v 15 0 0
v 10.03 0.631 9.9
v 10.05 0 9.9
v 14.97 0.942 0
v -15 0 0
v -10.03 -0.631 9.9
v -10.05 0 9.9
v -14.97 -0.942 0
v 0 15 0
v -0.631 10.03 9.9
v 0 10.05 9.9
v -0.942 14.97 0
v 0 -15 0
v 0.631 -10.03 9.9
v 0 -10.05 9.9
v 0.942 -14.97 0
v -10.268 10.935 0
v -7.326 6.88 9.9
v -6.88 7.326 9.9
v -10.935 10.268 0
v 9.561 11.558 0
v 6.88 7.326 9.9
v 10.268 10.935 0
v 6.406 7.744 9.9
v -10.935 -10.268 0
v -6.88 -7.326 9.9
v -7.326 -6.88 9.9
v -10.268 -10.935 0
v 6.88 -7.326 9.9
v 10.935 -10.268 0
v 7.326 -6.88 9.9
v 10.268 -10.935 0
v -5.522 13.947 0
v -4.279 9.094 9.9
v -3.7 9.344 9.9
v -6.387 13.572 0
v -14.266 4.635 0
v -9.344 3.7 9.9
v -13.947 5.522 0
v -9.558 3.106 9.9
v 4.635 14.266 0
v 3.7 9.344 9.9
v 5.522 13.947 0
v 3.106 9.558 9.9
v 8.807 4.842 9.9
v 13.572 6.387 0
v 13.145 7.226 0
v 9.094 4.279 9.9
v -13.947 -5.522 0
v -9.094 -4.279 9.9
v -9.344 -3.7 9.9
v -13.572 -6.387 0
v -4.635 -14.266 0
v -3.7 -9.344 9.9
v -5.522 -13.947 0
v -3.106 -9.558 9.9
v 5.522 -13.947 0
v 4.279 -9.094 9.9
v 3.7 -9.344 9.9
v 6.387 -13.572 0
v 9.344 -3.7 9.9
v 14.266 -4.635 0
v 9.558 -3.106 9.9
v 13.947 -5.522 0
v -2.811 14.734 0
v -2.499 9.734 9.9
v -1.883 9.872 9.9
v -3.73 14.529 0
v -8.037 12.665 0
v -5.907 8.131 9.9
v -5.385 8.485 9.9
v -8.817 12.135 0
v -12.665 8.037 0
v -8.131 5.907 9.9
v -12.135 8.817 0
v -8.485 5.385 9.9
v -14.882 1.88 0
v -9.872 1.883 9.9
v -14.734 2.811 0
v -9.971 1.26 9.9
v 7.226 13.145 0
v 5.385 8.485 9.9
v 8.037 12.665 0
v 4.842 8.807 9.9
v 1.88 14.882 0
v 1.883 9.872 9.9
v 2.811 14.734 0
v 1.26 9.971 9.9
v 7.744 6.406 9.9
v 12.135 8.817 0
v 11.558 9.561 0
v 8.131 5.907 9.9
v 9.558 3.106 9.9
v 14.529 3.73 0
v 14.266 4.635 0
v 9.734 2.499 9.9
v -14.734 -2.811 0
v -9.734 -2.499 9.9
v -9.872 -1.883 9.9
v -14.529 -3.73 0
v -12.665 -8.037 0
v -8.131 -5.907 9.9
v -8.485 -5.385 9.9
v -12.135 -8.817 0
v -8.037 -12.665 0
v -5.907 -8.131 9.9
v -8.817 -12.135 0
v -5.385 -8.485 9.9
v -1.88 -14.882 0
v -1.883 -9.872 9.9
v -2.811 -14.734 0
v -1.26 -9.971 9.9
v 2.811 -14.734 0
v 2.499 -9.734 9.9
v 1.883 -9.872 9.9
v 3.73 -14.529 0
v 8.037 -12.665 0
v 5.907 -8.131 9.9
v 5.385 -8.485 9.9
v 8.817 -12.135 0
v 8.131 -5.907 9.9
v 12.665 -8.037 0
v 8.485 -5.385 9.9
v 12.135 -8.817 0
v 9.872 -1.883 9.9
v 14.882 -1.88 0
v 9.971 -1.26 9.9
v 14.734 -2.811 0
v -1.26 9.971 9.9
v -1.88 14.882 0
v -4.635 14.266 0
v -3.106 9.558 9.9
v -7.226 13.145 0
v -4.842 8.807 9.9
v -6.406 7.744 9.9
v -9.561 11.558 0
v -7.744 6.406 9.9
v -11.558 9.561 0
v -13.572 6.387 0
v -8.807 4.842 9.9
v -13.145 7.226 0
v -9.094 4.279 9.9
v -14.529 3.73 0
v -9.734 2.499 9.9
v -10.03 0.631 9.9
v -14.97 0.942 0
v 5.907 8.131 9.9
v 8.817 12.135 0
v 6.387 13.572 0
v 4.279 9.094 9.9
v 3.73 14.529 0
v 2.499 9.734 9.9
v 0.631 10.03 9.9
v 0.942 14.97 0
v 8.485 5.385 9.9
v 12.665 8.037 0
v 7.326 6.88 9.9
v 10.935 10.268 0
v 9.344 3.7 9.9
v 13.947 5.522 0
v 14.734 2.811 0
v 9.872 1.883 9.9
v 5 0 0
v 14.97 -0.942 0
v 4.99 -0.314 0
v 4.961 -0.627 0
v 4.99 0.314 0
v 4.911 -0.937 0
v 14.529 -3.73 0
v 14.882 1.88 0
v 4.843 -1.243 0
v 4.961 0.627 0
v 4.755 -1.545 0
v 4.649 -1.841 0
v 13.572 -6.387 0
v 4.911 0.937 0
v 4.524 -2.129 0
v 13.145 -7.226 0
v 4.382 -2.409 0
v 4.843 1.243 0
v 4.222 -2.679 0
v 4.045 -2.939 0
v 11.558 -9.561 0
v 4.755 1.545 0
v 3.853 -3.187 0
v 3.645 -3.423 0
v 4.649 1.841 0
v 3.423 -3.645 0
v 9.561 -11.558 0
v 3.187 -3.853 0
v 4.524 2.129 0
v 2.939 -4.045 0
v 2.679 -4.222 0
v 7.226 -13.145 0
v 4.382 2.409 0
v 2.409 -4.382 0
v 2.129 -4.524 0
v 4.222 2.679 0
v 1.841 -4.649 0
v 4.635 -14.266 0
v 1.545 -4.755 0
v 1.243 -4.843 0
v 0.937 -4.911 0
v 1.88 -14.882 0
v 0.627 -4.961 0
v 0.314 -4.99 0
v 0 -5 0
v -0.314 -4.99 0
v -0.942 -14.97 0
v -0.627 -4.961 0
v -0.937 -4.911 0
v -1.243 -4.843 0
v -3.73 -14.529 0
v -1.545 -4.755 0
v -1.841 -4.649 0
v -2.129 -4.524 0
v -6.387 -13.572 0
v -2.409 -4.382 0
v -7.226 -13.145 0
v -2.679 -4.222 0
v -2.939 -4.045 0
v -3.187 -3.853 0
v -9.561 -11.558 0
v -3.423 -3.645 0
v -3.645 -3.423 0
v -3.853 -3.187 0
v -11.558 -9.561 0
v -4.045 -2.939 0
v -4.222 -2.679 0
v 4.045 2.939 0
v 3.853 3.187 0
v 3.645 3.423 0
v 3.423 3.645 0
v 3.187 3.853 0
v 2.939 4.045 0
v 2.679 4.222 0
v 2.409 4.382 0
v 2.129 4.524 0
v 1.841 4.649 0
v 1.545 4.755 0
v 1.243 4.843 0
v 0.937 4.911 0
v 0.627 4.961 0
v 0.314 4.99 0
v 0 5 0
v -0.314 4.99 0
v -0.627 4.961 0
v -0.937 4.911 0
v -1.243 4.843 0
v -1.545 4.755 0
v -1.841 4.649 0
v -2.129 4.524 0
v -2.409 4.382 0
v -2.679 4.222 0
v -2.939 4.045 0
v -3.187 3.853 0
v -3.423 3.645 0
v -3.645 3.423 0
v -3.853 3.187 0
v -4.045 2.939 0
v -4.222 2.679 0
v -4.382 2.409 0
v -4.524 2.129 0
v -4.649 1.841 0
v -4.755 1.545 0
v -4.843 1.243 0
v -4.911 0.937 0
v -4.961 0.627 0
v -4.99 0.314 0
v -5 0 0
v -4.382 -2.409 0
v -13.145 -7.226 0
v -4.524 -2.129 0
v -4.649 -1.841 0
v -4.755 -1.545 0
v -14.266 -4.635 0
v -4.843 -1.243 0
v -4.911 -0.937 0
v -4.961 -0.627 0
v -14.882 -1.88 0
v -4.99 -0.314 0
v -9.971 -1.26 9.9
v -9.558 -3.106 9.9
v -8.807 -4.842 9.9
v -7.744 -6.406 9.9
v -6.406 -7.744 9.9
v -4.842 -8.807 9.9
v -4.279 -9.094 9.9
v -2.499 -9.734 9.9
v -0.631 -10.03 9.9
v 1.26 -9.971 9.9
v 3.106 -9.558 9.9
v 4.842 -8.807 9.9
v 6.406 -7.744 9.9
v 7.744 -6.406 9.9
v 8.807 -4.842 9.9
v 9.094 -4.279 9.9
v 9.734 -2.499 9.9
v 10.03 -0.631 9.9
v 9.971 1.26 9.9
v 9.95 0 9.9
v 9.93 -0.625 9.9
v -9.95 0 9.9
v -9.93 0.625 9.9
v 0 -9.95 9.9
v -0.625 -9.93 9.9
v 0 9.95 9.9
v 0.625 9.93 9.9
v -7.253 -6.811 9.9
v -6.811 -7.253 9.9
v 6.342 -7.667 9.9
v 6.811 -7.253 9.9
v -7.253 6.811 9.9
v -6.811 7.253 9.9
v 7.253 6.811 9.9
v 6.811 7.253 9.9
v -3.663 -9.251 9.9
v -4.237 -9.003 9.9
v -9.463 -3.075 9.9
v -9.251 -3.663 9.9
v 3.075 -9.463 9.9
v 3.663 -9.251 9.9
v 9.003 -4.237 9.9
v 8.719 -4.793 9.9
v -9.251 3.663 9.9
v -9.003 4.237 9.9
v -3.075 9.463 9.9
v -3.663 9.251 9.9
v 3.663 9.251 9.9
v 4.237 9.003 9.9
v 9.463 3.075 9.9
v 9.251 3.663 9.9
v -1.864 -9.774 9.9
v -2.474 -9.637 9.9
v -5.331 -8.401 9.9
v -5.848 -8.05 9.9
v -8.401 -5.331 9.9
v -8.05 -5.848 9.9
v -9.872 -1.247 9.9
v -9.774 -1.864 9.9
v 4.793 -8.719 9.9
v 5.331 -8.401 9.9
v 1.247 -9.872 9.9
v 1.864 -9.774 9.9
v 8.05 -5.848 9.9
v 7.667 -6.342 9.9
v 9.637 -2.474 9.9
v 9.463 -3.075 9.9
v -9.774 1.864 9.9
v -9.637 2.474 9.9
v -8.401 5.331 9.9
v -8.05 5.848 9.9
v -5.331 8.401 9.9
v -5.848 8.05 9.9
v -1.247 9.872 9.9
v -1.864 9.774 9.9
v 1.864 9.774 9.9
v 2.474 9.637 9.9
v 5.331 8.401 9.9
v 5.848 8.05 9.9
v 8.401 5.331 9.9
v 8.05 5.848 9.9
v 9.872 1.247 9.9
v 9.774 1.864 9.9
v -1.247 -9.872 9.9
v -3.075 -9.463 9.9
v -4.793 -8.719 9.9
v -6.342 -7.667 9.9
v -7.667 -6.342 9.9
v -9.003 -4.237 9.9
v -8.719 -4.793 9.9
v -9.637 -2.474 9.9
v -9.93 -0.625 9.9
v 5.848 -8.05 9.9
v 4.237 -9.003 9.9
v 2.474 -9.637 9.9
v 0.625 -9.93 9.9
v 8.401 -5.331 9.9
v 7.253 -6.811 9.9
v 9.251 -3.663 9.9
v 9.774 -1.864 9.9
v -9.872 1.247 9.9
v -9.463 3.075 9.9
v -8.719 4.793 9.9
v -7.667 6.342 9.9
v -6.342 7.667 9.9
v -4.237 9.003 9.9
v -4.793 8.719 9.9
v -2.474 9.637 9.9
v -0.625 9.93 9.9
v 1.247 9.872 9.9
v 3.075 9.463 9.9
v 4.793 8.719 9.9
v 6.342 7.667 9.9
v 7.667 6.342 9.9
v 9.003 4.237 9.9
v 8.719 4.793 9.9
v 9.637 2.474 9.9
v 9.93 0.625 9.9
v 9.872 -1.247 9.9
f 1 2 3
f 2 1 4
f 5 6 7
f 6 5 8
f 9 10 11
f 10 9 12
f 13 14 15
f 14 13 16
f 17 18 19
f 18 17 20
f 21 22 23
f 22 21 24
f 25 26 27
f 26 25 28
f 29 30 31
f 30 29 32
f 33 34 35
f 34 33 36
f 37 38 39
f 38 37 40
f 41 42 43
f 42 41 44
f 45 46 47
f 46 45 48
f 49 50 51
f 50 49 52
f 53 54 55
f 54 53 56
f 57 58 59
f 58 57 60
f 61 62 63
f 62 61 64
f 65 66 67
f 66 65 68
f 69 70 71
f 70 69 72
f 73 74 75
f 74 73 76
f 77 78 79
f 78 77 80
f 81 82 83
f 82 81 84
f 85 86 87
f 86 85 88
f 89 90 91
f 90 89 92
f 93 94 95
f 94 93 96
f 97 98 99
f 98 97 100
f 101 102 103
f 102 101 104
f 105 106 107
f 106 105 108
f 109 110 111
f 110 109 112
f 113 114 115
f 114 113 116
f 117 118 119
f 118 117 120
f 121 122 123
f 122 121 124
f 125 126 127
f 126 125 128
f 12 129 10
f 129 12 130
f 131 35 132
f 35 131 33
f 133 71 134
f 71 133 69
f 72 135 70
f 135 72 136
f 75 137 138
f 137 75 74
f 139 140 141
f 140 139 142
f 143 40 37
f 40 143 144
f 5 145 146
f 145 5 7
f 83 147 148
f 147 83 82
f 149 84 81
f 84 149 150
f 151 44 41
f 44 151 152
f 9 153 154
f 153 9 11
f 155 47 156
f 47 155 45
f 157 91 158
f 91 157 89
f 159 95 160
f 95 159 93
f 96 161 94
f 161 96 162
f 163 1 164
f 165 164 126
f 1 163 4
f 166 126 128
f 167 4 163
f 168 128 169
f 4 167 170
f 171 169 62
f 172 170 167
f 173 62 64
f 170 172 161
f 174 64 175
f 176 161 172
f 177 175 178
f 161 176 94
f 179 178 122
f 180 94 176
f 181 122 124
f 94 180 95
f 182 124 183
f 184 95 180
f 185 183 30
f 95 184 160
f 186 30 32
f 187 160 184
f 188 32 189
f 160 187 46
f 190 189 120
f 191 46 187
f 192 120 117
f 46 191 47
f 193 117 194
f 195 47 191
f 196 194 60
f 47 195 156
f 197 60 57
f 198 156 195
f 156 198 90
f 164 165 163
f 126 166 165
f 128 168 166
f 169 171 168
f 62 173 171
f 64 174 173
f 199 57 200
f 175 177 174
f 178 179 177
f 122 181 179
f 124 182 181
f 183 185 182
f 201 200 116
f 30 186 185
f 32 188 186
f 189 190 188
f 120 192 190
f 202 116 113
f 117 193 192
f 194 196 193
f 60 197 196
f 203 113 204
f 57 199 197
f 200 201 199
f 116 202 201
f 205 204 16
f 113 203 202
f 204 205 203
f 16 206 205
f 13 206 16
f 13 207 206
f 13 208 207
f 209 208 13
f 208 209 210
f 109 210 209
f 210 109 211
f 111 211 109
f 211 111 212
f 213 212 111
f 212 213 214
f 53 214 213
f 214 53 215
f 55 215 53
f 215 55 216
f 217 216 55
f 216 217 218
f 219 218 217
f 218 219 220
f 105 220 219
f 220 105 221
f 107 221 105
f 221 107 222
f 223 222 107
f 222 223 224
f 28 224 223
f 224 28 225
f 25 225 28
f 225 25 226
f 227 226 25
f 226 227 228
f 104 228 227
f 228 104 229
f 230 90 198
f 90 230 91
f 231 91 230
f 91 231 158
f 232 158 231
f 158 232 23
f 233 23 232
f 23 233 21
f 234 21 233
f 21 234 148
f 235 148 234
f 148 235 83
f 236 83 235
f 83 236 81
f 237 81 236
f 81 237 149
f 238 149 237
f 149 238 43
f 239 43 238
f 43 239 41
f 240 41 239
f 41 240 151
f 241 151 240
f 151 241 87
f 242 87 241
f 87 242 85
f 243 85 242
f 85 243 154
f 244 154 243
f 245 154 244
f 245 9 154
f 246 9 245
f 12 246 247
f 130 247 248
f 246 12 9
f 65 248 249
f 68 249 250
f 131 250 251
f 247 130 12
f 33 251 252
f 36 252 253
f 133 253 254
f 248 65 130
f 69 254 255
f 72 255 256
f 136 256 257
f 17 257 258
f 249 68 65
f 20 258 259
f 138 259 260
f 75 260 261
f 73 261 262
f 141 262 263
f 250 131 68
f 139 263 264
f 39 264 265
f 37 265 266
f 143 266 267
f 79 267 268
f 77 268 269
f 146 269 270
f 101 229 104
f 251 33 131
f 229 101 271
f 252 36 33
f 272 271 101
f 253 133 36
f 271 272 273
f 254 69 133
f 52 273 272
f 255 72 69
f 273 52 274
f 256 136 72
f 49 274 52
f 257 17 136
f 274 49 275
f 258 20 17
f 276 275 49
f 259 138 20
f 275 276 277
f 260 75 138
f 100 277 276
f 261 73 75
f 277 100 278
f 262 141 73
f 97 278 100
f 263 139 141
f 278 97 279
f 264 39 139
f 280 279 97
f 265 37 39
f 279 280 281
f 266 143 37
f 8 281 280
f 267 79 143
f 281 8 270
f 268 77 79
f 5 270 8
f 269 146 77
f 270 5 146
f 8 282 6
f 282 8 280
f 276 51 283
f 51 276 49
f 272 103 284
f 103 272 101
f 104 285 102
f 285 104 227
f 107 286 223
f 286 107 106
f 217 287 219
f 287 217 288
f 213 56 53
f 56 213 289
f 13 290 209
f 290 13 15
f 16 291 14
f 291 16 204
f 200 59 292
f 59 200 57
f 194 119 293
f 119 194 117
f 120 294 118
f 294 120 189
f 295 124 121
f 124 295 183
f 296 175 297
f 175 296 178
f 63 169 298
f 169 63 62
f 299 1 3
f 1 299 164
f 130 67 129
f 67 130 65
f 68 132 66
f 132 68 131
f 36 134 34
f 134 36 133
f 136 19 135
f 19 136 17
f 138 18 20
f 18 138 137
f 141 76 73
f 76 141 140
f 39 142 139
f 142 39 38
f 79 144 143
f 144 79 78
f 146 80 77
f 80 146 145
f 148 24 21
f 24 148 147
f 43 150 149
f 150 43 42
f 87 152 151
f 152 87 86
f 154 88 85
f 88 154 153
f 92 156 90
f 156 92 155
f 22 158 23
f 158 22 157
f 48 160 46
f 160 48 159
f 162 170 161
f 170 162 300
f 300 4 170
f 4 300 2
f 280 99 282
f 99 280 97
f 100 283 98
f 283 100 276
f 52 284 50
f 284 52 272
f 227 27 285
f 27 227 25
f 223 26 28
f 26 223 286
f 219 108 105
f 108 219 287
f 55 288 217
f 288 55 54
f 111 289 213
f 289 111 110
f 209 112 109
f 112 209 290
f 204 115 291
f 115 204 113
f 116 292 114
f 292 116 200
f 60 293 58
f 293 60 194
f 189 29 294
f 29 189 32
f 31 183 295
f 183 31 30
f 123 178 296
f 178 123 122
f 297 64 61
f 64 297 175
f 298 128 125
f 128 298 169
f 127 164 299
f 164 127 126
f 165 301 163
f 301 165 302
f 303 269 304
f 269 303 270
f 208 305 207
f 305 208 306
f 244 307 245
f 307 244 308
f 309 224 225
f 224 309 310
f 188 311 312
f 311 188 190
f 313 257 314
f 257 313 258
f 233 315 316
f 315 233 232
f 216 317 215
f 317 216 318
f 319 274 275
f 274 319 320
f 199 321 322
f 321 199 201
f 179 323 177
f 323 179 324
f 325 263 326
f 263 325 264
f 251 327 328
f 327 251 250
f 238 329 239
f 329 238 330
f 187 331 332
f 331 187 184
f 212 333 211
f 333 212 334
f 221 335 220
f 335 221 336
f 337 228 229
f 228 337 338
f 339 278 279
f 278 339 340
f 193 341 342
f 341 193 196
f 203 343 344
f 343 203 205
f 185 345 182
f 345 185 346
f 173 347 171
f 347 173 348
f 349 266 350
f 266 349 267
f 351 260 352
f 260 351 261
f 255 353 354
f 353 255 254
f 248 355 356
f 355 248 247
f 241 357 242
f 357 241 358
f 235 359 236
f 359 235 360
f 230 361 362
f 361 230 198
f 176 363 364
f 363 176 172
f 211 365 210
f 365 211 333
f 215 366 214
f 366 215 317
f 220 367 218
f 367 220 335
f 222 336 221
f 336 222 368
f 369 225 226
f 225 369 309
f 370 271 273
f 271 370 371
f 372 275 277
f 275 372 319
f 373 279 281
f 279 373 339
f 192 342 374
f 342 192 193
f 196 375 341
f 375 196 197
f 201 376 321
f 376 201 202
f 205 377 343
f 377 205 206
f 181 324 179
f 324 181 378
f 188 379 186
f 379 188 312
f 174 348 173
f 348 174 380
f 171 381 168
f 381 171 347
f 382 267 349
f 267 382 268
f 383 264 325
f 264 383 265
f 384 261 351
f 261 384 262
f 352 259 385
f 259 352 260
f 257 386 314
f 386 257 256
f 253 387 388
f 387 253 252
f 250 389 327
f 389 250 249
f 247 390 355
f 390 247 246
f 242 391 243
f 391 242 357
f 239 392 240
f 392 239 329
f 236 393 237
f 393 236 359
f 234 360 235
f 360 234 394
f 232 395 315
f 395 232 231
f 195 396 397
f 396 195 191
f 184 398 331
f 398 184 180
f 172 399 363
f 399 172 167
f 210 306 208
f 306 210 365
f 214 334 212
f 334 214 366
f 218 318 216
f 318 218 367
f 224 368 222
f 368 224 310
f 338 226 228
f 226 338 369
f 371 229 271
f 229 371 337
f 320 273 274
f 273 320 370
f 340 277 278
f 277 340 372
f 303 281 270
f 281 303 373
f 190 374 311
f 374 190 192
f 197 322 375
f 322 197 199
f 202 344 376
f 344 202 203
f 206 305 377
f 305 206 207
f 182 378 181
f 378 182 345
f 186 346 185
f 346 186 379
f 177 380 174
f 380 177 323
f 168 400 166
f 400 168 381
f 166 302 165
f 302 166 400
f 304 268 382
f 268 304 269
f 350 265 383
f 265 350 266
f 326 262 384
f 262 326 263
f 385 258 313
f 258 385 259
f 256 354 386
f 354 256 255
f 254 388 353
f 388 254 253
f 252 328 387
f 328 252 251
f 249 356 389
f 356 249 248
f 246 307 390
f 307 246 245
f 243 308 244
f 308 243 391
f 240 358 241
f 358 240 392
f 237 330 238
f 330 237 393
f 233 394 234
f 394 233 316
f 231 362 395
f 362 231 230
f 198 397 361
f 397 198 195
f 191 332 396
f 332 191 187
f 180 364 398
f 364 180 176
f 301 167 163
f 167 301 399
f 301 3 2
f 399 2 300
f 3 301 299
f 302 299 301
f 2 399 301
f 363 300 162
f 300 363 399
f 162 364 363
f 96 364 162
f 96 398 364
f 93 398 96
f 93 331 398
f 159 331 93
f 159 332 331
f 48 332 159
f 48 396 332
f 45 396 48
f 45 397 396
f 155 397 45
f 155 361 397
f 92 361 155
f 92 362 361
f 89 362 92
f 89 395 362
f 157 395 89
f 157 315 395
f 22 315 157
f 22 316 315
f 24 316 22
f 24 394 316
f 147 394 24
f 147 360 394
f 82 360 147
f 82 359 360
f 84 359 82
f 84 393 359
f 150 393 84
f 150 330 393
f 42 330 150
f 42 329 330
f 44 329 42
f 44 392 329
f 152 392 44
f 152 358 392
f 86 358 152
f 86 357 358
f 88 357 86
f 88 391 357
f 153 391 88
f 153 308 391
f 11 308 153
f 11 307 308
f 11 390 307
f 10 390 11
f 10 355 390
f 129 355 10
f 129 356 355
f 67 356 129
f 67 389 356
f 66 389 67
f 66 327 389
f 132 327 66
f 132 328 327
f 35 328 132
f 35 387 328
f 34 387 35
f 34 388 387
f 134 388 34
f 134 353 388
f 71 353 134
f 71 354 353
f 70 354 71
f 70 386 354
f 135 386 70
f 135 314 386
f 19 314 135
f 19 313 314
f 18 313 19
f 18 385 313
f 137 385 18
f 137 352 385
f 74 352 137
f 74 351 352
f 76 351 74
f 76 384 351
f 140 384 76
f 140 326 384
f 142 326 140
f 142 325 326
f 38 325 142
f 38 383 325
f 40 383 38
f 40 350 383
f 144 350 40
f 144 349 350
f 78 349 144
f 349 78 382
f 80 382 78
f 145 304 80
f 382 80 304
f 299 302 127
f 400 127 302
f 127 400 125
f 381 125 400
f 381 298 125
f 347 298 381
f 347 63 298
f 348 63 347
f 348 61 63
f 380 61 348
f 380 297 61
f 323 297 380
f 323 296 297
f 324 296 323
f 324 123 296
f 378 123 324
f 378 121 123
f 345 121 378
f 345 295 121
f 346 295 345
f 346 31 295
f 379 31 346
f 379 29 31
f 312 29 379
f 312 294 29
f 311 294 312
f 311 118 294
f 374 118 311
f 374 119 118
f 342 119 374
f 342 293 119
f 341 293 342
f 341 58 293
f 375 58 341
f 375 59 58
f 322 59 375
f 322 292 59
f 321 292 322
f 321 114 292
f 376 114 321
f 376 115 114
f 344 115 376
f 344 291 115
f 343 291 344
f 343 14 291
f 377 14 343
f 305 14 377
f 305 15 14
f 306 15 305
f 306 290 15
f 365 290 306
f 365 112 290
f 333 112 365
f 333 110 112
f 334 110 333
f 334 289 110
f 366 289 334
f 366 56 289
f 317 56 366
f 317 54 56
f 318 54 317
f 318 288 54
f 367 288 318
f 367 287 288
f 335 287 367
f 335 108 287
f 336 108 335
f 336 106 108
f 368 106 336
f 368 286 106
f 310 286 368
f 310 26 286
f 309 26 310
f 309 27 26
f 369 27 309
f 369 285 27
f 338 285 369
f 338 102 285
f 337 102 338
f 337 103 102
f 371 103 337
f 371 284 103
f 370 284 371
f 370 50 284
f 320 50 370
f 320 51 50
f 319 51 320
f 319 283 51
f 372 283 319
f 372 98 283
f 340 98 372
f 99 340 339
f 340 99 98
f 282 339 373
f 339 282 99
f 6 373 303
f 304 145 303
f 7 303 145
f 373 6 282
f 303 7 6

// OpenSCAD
$fn=100;

outer_dim = 30;
inner_dim = 20;
holder_height = 10;
b1 = (outer_dim - inner_dim)/2;
theta = atan2(holder_height, b1);
c_height = tan(theta) * outer_dim/2;

//import("text.stl");

difference() {
    cylinder(c_height, d1=outer_dim, d2=0);
    
    rotate([180, 0, 0])
    translate([0, 0, -holder_height])
    cylinder((inner_dim/2)*tan(theta), d1 = inner_dim, d2=0);
    
    translate([-outer_dim/2, -outer_dim/2, holder_height-0.1])
    cube([outer_dim, outer_dim, 100]);
}
